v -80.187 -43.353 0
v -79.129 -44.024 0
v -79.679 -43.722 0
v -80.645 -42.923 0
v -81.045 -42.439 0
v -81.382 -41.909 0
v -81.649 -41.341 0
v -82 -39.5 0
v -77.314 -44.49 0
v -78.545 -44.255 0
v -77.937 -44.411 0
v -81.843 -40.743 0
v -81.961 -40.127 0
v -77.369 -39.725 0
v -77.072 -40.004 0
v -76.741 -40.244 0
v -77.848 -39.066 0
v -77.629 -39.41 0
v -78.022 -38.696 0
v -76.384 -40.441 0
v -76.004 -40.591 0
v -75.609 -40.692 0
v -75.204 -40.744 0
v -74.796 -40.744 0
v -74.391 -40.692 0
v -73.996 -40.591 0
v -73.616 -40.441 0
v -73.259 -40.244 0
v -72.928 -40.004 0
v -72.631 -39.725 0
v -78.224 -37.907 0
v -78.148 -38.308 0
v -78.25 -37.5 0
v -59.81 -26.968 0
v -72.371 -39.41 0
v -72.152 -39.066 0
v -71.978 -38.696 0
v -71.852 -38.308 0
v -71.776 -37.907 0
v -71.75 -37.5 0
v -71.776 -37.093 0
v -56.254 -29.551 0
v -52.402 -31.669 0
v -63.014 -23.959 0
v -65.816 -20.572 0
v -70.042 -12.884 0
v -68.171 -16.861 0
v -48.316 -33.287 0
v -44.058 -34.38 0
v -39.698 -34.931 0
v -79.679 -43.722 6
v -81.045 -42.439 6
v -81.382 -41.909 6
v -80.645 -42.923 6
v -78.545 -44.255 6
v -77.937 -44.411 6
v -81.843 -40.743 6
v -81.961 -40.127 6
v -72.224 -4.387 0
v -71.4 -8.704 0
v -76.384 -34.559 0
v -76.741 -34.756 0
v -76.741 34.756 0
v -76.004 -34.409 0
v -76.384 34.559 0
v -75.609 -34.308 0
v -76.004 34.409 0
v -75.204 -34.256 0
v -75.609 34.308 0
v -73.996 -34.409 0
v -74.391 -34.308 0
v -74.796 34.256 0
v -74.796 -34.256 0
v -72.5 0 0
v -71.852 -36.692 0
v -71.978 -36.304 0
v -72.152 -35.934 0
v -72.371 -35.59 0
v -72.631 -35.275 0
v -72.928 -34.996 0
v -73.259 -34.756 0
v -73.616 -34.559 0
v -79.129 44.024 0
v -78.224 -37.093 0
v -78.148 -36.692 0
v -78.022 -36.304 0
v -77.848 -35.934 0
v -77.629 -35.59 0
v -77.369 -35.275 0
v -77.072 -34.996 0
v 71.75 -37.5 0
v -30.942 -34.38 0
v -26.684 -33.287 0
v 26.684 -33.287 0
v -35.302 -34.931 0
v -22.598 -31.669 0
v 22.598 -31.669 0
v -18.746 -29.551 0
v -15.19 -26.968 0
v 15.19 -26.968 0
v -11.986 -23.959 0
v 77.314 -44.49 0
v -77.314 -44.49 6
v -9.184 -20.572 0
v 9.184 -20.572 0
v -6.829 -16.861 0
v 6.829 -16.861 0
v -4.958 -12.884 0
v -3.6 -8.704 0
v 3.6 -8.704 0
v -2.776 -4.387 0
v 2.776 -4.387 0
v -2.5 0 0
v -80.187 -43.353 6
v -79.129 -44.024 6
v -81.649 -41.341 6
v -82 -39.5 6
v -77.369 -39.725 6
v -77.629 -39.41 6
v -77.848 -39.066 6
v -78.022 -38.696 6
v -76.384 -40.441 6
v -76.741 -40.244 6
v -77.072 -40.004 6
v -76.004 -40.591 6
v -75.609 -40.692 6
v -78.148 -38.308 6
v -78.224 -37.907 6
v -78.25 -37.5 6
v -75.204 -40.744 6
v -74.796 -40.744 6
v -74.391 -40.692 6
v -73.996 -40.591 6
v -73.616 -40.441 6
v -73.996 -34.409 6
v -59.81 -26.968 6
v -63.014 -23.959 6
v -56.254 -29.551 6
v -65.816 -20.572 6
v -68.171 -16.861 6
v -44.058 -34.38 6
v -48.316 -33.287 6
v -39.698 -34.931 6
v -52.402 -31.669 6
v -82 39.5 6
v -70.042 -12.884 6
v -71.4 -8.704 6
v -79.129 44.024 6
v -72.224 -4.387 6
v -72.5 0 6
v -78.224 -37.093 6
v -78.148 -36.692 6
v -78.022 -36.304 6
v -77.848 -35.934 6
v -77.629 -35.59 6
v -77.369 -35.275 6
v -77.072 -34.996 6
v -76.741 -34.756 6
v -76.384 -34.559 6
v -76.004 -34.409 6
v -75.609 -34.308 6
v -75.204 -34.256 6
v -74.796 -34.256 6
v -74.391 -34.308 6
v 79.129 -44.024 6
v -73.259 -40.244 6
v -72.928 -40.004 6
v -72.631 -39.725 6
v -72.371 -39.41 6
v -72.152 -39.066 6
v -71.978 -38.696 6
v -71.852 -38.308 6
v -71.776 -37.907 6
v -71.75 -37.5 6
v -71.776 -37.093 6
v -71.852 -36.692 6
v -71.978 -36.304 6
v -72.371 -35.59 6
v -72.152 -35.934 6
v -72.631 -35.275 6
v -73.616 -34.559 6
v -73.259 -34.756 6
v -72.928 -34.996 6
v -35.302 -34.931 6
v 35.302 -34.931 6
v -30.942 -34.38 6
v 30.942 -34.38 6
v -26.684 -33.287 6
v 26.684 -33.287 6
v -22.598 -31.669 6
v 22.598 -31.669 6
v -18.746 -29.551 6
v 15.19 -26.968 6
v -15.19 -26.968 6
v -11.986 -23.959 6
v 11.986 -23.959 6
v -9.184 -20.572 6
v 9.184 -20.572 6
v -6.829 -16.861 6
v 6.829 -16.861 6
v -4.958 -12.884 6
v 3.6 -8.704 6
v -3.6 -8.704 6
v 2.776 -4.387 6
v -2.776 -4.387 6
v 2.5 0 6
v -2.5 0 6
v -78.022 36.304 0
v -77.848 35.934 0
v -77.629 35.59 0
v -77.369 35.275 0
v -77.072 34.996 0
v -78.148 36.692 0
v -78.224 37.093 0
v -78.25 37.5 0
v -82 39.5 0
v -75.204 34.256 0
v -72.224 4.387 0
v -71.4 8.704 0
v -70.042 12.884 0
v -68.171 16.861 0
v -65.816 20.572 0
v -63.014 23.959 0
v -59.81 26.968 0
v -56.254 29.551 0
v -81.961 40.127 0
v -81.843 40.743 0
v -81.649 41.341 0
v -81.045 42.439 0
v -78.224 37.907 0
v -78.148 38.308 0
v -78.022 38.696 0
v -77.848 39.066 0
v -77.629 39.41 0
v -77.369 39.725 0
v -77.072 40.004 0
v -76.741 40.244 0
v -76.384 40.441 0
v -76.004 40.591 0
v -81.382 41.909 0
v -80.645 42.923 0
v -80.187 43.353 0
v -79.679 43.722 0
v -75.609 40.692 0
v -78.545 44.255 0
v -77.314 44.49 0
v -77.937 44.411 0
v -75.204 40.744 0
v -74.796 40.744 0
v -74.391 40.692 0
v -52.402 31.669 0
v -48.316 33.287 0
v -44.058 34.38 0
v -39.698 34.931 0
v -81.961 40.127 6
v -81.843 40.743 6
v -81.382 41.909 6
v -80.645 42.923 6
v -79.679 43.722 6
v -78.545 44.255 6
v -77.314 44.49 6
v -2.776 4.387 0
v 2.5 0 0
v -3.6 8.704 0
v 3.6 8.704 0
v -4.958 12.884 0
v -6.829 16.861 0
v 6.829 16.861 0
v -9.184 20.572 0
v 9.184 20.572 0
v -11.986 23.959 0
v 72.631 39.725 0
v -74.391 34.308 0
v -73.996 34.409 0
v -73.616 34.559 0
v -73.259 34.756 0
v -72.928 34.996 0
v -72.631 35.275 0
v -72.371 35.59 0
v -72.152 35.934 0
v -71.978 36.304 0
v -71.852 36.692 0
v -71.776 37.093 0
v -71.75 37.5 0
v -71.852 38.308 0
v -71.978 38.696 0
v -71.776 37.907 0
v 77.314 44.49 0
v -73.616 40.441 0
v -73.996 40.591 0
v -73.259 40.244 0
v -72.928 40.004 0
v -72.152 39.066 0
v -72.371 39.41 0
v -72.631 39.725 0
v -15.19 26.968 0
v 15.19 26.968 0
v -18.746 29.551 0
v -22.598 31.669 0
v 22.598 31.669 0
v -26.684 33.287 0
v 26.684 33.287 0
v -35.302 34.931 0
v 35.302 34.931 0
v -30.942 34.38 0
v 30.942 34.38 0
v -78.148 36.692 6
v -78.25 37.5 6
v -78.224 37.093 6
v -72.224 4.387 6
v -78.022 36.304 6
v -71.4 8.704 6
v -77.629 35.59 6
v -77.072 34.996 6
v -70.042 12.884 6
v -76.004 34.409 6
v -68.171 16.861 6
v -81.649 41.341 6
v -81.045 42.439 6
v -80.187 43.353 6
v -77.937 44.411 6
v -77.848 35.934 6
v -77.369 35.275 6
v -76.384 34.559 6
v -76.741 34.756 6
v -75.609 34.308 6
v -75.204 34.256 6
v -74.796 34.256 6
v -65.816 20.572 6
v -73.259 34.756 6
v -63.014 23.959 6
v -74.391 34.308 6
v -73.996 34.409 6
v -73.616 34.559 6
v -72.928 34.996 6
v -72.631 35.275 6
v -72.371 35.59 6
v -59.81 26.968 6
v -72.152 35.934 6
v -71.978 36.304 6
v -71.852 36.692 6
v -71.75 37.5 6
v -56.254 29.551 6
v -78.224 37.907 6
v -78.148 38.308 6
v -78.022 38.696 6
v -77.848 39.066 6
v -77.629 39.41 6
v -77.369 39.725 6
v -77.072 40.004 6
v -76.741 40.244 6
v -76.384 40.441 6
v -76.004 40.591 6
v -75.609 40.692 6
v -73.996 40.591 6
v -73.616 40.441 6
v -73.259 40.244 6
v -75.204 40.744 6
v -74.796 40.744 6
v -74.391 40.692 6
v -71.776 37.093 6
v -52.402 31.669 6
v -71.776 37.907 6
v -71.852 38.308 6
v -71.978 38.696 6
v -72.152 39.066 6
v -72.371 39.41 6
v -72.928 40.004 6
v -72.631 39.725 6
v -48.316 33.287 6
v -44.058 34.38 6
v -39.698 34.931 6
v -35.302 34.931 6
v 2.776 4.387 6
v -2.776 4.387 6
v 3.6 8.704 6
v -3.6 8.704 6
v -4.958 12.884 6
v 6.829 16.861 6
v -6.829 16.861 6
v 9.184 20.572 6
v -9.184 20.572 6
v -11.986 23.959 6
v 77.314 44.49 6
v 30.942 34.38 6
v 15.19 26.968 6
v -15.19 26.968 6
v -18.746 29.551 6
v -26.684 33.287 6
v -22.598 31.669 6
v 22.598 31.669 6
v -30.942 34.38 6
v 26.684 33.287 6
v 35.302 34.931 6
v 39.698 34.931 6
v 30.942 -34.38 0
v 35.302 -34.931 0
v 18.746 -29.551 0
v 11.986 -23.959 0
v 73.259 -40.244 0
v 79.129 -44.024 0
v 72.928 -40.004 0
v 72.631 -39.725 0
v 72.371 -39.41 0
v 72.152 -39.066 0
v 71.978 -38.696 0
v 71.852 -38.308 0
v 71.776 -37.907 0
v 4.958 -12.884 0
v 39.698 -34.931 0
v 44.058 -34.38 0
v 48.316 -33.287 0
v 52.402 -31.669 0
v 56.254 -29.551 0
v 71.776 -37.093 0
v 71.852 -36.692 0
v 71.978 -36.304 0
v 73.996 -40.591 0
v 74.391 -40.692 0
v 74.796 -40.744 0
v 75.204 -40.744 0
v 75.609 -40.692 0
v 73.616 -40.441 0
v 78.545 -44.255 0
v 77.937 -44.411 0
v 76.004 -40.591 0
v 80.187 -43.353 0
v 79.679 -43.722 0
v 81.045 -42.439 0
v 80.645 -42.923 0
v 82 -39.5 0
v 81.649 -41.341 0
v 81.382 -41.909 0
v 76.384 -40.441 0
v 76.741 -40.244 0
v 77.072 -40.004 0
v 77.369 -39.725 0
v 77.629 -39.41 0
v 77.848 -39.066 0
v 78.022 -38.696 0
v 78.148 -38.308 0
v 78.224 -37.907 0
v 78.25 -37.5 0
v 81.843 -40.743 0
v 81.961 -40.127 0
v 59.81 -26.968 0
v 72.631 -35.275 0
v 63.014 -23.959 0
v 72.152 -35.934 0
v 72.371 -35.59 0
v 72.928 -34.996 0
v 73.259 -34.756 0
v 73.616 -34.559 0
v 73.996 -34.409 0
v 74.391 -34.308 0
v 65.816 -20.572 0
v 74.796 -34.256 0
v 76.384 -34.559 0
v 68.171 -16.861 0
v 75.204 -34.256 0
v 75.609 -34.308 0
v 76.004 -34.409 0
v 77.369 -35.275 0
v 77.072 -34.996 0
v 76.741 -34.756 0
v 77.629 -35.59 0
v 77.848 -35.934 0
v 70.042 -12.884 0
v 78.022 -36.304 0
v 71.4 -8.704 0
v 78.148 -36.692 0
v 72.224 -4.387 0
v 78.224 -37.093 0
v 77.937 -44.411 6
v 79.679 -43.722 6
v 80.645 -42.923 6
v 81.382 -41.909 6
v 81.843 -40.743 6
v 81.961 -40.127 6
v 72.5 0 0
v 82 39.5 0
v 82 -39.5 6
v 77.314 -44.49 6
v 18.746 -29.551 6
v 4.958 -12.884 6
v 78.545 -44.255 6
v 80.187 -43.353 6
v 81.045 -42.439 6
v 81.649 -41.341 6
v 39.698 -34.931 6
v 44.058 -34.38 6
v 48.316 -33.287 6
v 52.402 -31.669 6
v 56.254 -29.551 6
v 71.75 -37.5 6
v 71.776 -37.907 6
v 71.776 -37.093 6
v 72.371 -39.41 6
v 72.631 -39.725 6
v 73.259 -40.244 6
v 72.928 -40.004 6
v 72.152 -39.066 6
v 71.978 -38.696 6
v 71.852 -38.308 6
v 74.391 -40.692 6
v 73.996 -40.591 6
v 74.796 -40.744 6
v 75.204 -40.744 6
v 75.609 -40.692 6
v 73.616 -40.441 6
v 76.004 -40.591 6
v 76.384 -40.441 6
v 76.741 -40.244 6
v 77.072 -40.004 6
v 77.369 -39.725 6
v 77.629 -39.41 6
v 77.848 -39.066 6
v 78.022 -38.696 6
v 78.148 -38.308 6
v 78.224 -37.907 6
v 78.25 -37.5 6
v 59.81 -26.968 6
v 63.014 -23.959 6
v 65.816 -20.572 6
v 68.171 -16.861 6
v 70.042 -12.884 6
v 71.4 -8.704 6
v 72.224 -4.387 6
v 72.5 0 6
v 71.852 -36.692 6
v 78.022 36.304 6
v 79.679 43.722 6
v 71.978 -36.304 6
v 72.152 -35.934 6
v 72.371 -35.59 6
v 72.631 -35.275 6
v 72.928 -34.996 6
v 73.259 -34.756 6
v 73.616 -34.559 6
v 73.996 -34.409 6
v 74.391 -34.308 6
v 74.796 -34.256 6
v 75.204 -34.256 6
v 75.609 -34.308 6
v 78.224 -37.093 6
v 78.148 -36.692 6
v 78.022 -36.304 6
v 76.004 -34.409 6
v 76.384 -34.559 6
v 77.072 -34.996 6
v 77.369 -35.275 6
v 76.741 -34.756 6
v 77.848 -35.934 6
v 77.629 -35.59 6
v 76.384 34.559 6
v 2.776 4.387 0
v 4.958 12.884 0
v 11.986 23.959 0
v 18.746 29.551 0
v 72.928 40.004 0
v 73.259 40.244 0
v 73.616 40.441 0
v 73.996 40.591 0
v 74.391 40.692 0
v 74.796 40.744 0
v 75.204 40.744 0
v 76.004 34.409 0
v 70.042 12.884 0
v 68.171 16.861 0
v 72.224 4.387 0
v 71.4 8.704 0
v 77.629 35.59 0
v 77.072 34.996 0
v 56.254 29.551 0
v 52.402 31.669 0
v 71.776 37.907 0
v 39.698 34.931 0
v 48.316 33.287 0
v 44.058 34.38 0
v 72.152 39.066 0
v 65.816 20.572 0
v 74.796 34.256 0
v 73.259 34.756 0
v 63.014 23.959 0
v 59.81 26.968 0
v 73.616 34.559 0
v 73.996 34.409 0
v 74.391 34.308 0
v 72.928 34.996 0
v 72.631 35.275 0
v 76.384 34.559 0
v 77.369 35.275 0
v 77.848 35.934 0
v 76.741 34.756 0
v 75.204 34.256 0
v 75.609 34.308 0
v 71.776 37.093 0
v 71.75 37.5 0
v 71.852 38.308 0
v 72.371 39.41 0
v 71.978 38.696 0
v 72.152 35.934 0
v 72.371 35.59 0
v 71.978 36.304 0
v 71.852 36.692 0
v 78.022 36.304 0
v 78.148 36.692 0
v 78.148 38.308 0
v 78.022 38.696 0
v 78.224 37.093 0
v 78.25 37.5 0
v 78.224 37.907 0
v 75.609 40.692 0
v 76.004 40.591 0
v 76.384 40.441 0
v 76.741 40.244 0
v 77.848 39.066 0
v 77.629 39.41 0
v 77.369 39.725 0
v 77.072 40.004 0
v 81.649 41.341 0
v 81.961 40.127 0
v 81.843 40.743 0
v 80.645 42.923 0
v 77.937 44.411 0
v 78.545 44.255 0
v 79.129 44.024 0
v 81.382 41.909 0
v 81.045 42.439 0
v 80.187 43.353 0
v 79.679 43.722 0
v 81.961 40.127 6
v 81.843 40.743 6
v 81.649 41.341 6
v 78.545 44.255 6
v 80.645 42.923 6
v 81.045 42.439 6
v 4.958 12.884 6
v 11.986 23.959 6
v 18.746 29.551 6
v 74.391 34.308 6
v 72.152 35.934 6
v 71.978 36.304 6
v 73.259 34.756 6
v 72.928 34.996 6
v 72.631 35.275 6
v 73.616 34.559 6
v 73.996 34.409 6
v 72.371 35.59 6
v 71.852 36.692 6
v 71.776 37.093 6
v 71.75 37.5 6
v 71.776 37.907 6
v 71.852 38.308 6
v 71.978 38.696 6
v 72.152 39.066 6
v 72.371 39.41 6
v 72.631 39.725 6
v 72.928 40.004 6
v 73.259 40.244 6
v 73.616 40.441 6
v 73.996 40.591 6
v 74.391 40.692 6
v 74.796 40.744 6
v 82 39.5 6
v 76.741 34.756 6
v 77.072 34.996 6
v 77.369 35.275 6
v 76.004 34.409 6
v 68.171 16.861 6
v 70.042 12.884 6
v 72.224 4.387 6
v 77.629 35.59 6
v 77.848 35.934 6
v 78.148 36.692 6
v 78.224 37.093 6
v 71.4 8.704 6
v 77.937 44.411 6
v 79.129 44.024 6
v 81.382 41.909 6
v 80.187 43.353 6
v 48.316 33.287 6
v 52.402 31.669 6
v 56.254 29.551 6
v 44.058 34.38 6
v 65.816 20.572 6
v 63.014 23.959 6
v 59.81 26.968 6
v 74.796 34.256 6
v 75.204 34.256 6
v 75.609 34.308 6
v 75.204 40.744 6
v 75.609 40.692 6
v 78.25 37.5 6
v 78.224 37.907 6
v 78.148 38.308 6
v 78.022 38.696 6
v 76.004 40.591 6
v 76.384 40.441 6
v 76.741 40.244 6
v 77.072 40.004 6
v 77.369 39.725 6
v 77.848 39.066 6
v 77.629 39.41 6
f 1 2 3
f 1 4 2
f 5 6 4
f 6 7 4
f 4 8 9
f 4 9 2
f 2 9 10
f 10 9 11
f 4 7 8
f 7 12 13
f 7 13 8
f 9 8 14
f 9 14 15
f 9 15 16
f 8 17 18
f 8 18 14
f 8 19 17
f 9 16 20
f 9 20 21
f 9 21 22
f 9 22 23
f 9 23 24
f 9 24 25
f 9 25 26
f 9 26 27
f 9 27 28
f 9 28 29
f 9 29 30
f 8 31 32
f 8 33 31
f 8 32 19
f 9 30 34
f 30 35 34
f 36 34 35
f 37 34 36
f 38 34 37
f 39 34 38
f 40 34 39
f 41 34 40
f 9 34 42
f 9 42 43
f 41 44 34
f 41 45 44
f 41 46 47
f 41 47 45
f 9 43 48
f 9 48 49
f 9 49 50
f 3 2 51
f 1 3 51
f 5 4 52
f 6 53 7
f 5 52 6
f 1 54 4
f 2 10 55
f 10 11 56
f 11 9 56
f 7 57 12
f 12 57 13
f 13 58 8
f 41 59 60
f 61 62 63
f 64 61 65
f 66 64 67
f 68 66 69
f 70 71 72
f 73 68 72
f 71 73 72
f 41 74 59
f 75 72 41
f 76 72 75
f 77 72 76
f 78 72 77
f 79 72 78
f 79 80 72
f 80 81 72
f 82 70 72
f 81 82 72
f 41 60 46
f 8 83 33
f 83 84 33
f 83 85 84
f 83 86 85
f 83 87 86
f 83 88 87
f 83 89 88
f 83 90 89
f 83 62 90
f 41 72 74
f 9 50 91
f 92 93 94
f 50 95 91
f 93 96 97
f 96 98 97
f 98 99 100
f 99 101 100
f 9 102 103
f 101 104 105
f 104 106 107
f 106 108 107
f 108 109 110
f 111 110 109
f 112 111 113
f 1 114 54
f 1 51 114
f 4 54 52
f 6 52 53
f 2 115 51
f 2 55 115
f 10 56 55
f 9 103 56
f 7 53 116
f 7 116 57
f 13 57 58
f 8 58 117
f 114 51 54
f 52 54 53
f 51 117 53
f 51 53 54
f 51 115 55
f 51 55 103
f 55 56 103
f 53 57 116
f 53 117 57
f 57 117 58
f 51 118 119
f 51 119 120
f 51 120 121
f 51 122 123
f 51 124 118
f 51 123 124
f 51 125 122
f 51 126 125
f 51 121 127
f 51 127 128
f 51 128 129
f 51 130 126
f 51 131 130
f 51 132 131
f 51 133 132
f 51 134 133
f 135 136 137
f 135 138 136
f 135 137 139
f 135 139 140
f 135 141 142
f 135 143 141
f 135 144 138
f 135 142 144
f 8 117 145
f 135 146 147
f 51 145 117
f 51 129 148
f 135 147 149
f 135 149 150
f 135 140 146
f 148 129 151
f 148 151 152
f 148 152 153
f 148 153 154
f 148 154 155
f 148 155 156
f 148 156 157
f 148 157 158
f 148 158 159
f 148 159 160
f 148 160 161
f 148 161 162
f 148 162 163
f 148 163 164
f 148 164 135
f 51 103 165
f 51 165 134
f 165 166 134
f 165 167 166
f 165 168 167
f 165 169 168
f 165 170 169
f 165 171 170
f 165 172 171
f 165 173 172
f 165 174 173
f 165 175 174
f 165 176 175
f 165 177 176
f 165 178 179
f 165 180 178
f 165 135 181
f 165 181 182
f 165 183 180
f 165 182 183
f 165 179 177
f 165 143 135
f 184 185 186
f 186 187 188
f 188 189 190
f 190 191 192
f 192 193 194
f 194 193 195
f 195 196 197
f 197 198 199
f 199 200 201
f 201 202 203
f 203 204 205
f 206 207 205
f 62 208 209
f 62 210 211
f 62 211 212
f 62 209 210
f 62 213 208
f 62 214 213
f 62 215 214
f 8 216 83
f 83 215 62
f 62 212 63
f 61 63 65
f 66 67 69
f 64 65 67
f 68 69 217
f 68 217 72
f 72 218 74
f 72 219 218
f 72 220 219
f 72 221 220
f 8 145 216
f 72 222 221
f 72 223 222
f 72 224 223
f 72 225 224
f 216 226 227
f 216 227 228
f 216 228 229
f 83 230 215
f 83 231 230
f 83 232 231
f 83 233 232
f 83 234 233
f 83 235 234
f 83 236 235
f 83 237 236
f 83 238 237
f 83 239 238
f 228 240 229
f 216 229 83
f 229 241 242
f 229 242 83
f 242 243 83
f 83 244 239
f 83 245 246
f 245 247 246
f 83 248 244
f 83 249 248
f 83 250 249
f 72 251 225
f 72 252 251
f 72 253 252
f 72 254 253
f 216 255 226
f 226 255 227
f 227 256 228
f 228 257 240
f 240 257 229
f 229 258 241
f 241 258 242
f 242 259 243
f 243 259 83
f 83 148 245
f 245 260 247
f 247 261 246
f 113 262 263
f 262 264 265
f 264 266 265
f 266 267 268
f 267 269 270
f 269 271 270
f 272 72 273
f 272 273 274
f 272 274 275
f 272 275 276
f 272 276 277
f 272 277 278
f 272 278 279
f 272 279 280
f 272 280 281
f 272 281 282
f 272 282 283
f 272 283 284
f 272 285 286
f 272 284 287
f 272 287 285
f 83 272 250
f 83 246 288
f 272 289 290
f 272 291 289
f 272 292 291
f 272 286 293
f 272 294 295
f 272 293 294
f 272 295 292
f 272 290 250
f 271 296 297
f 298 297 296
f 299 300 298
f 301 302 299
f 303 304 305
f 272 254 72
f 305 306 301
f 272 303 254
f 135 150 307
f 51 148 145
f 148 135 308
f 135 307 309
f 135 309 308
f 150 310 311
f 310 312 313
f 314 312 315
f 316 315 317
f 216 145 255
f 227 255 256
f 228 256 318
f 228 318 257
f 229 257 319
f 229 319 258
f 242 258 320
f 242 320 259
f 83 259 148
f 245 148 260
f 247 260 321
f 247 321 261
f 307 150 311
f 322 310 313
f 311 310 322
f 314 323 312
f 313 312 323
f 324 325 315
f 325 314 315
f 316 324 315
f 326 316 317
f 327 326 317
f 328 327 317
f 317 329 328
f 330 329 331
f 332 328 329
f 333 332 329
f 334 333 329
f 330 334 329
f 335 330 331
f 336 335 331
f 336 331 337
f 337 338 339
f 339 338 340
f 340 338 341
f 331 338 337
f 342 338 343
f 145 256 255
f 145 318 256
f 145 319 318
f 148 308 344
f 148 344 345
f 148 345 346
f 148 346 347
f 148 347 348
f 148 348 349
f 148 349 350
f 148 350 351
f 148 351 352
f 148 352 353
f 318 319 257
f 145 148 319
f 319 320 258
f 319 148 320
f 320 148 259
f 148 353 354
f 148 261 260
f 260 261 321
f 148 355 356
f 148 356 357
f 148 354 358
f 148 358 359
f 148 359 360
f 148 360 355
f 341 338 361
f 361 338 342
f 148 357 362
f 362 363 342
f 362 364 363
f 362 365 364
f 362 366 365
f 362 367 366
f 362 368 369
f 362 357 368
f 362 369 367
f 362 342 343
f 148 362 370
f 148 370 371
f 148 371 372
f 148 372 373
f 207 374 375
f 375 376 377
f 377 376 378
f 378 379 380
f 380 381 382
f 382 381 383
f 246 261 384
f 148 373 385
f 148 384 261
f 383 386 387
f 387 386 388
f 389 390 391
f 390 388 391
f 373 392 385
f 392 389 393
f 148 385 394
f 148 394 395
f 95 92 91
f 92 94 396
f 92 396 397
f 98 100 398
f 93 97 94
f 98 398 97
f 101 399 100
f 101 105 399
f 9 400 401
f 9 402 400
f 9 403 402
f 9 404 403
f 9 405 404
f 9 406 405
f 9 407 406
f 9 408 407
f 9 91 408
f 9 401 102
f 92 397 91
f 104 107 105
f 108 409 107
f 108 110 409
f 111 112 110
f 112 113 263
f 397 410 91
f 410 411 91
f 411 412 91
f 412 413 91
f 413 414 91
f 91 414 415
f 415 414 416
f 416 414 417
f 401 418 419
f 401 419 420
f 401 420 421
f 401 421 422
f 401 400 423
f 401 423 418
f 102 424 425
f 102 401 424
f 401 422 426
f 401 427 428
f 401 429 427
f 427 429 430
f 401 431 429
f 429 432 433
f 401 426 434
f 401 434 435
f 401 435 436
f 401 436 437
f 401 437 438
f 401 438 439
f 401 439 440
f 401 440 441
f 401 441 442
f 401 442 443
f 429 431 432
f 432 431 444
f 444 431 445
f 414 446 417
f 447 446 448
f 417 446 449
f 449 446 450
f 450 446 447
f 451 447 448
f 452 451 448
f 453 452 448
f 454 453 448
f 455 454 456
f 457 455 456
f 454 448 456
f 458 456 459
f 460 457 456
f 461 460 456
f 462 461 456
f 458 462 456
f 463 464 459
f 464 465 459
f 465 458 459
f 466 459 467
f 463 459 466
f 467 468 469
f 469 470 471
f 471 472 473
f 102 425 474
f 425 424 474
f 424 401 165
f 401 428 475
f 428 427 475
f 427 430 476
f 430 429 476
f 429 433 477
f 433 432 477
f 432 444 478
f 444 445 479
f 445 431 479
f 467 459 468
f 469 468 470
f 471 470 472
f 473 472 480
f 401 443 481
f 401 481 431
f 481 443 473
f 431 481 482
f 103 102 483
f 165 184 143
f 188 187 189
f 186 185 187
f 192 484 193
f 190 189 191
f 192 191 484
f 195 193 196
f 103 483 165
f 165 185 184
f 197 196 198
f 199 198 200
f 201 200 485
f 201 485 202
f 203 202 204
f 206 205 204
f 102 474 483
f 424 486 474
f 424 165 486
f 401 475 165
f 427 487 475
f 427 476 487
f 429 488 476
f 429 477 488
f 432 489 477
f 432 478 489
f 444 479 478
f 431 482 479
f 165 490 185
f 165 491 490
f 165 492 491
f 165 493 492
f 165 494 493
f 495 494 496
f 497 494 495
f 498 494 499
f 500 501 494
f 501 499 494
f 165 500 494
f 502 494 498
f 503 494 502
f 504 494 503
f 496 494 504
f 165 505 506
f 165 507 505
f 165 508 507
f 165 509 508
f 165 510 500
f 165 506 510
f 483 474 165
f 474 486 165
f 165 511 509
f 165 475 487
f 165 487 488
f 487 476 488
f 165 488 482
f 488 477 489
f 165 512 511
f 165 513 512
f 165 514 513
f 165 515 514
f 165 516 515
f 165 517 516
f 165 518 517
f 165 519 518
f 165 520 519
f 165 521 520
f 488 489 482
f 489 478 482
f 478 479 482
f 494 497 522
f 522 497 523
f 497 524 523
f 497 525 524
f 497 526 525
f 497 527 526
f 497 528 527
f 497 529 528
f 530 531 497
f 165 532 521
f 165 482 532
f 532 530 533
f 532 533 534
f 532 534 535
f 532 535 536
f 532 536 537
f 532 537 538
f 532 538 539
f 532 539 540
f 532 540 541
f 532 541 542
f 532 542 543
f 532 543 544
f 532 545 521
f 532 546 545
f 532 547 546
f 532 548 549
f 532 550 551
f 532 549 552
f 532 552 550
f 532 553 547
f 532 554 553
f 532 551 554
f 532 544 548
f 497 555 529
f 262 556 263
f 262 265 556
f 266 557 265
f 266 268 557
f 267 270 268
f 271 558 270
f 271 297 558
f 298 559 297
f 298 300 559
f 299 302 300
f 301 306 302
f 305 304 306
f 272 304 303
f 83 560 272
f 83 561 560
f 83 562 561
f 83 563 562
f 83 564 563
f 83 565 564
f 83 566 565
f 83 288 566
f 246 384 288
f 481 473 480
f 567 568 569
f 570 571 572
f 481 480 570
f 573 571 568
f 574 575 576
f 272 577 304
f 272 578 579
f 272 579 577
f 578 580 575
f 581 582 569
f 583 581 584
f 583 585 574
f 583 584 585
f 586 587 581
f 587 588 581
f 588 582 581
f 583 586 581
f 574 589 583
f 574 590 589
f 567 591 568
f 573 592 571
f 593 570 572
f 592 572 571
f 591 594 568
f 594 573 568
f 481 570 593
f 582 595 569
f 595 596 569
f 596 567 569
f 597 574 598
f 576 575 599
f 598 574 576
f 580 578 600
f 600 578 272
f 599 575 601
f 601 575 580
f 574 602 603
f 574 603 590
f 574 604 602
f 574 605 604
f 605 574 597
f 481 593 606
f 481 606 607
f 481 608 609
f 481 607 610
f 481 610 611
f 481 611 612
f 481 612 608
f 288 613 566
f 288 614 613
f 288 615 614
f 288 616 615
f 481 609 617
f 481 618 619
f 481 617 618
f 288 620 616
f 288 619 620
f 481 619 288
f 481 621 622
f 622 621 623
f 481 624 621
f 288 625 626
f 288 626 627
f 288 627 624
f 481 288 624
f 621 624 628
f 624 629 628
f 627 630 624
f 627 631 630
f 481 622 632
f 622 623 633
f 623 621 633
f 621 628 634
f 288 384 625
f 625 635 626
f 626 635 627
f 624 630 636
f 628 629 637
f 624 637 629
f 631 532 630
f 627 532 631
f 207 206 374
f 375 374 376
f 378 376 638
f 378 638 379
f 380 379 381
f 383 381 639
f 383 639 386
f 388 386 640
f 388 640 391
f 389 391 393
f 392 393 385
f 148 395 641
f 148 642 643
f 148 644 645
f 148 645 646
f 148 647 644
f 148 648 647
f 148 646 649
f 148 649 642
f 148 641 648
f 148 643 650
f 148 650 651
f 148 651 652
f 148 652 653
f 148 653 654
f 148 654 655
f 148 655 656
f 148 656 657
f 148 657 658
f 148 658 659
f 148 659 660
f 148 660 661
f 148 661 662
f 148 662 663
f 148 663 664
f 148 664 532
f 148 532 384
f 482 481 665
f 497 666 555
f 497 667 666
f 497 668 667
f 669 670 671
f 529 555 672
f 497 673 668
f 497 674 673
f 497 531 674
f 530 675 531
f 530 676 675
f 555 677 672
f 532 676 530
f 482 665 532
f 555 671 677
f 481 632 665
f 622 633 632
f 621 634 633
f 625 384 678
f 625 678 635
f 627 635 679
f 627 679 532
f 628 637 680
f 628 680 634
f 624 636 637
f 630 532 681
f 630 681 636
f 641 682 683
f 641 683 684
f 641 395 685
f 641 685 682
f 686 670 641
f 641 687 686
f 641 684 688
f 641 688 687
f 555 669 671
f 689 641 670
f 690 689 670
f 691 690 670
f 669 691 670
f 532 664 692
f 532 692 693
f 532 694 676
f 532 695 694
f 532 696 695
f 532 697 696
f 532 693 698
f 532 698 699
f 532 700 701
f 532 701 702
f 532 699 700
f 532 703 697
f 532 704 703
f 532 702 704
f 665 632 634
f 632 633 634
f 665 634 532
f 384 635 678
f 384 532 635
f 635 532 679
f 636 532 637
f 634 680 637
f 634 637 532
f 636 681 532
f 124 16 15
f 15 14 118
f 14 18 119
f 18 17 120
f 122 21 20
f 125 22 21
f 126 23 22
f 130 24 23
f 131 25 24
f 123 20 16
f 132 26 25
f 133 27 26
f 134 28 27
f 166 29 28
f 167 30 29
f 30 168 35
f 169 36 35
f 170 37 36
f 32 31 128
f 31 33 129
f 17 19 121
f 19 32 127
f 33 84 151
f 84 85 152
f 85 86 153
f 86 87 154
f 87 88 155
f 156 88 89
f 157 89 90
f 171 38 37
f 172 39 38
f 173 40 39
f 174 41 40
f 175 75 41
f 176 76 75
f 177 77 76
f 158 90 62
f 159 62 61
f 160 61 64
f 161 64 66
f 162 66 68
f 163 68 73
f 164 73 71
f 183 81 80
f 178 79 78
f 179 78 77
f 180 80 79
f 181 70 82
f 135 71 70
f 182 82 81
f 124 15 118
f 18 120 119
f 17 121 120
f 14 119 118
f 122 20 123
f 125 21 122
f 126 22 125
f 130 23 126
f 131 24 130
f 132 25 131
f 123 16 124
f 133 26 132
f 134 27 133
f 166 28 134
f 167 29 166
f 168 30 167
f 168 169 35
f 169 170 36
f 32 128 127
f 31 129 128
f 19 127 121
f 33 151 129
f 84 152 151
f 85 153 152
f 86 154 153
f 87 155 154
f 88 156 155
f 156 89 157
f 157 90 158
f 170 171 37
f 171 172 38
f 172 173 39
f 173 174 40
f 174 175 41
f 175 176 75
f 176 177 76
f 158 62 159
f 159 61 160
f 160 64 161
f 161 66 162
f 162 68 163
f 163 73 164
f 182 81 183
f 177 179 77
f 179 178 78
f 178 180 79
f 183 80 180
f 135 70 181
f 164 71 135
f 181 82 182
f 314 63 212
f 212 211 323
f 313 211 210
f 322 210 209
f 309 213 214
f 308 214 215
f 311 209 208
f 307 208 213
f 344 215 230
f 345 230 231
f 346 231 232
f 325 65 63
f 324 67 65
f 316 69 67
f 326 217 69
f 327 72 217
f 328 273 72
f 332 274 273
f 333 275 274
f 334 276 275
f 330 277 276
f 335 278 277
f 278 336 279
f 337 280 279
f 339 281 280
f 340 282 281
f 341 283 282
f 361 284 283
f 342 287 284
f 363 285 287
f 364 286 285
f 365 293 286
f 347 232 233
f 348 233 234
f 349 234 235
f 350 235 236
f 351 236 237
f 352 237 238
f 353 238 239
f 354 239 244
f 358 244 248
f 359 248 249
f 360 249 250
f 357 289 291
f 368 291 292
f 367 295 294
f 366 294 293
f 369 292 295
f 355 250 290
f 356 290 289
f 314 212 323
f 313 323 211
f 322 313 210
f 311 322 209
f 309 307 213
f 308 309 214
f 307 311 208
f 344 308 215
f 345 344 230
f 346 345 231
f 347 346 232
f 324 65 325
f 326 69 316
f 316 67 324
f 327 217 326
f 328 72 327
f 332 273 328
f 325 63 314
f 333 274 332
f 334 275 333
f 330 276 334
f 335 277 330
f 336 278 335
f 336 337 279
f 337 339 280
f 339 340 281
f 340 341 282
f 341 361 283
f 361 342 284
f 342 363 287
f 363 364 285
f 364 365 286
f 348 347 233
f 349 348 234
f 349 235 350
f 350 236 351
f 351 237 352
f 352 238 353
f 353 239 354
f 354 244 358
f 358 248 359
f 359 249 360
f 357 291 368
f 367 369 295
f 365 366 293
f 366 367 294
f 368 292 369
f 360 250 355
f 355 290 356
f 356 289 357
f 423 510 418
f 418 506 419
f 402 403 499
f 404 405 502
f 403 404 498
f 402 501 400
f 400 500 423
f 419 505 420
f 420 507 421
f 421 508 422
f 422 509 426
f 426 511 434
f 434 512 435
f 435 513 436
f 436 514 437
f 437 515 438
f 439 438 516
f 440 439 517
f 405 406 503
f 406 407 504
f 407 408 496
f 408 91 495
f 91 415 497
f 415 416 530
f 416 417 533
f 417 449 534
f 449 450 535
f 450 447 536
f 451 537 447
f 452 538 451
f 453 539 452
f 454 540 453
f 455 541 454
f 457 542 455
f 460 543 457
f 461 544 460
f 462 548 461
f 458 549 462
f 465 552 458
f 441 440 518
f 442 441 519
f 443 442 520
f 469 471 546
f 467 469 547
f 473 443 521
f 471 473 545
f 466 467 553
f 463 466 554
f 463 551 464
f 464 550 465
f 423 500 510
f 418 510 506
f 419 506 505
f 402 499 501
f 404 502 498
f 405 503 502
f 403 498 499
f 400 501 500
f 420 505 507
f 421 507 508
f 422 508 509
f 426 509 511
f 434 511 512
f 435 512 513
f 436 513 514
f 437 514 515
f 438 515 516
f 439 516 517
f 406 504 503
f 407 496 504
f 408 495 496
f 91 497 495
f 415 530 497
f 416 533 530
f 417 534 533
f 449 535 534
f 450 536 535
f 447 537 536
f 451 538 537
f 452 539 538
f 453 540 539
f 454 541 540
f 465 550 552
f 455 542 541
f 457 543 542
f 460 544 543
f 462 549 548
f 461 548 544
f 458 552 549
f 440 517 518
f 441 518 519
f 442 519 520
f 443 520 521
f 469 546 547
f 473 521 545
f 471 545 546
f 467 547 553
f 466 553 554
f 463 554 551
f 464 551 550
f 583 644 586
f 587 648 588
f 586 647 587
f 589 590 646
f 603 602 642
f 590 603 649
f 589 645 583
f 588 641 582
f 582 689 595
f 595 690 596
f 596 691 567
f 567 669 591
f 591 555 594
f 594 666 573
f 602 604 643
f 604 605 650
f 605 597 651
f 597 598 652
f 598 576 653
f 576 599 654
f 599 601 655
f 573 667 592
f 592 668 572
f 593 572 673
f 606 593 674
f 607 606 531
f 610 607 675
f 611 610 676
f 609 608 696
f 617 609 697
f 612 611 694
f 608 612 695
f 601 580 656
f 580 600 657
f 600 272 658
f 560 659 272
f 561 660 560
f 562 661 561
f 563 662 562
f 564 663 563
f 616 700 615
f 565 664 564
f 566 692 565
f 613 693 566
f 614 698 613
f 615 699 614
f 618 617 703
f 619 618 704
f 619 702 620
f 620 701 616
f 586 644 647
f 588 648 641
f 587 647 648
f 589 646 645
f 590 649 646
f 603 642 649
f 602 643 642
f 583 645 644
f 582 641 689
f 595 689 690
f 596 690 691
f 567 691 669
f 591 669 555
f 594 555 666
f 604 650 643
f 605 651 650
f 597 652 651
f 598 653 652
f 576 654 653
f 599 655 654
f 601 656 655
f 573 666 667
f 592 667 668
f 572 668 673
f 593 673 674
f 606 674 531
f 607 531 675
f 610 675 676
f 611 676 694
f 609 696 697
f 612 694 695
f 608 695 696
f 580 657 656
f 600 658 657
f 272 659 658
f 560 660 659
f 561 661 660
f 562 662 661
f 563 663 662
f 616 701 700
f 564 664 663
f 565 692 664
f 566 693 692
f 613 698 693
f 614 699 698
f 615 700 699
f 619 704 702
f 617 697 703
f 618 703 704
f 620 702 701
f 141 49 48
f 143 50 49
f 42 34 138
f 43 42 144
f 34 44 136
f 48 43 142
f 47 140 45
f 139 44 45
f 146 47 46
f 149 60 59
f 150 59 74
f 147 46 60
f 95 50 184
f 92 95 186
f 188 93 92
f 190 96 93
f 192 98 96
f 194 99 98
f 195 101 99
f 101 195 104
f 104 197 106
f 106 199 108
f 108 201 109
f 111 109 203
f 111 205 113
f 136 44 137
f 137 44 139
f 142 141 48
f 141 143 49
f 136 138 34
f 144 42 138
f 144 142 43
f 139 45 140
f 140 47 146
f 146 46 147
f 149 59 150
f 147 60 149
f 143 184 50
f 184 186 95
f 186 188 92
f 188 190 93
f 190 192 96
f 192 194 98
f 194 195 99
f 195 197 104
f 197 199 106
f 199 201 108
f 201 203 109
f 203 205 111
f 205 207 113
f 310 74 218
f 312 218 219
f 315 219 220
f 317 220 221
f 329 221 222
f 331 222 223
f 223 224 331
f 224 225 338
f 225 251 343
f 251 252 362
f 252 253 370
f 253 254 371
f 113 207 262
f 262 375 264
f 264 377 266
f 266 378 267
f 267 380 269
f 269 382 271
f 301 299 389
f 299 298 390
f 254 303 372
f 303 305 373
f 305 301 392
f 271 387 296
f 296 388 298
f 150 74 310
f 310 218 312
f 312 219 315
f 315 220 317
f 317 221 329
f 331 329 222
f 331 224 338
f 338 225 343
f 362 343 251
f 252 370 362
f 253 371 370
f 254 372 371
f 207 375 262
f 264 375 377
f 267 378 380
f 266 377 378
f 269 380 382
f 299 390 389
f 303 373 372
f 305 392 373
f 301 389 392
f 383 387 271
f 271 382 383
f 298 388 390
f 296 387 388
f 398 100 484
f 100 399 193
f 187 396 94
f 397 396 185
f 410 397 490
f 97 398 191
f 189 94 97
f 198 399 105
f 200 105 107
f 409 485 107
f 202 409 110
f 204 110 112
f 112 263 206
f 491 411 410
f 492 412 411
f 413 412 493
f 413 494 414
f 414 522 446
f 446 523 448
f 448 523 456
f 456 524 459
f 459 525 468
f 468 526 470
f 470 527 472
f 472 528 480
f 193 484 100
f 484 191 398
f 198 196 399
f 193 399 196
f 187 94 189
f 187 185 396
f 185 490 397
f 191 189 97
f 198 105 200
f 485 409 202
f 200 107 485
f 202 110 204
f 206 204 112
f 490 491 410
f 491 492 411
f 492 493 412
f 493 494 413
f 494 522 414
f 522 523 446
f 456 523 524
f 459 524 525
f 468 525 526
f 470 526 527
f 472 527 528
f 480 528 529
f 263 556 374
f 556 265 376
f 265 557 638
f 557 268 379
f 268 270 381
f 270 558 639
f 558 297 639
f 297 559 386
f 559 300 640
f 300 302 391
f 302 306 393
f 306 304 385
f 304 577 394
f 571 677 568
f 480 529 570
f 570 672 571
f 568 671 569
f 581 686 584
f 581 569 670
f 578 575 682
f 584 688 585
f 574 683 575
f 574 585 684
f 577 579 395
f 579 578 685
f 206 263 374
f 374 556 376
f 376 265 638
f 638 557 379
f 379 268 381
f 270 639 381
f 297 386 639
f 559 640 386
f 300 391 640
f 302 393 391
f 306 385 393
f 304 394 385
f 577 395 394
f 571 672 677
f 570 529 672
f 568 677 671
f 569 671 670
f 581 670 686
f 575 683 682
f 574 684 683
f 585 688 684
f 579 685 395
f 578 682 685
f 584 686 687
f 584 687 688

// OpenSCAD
$fn = 50;

difference() {
	union() {
		hull() {
			translate(v = [-77.0, 39.5, 0]) {
				cylinder(h = 6, r = 5);
			}
			translate(v = [77.0, 39.5, 0]) {
				cylinder(h = 6, r = 5);
			}
			translate(v = [-77.0, -39.5, 0]) {
				cylinder(h = 6, r = 5);
			}
			translate(v = [77.0, -39.5, 0]) {
				cylinder(h = 6, r = 5);
			}
		}
	}
	union() {
		translate(v = [-75.0, -37.5, -100.0]) {
			cylinder(h = 200, r = 3.25);
		}
		translate(v = [-75.0, 37.5, -100.0]) {
			cylinder(h = 200, r = 3.25);
		}
		translate(v = [75.0, -37.5, -100.0]) {
			cylinder(h = 200, r = 3.25);
		}
		translate(v = [75.0, 37.5, -100.0]) {
			cylinder(h = 200, r = 3.25);
		}
		translate(v = [-75.0, -37.5, -100.0]) {
			cylinder(h = 200, r = 1.8);
		}
		translate(v = [-75.0, 37.5, -100.0]) {
			cylinder(h = 200, r = 1.8);
		}
		translate(v = [75.0, -37.5, -100.0]) {
			cylinder(h = 200, r = 1.8);
		}
		translate(v = [75.0, 37.5, -100.0]) {
			cylinder(h = 200, r = 1.8);
		}
		translate(v = [-37.5, 0, 0.0]) {
			cylinder(h = 6, r = 35.0);
		}
		translate(v = [37.5, 0, 0.0]) {
			cylinder(h = 6, r = 35.0);
		}
	}
}
